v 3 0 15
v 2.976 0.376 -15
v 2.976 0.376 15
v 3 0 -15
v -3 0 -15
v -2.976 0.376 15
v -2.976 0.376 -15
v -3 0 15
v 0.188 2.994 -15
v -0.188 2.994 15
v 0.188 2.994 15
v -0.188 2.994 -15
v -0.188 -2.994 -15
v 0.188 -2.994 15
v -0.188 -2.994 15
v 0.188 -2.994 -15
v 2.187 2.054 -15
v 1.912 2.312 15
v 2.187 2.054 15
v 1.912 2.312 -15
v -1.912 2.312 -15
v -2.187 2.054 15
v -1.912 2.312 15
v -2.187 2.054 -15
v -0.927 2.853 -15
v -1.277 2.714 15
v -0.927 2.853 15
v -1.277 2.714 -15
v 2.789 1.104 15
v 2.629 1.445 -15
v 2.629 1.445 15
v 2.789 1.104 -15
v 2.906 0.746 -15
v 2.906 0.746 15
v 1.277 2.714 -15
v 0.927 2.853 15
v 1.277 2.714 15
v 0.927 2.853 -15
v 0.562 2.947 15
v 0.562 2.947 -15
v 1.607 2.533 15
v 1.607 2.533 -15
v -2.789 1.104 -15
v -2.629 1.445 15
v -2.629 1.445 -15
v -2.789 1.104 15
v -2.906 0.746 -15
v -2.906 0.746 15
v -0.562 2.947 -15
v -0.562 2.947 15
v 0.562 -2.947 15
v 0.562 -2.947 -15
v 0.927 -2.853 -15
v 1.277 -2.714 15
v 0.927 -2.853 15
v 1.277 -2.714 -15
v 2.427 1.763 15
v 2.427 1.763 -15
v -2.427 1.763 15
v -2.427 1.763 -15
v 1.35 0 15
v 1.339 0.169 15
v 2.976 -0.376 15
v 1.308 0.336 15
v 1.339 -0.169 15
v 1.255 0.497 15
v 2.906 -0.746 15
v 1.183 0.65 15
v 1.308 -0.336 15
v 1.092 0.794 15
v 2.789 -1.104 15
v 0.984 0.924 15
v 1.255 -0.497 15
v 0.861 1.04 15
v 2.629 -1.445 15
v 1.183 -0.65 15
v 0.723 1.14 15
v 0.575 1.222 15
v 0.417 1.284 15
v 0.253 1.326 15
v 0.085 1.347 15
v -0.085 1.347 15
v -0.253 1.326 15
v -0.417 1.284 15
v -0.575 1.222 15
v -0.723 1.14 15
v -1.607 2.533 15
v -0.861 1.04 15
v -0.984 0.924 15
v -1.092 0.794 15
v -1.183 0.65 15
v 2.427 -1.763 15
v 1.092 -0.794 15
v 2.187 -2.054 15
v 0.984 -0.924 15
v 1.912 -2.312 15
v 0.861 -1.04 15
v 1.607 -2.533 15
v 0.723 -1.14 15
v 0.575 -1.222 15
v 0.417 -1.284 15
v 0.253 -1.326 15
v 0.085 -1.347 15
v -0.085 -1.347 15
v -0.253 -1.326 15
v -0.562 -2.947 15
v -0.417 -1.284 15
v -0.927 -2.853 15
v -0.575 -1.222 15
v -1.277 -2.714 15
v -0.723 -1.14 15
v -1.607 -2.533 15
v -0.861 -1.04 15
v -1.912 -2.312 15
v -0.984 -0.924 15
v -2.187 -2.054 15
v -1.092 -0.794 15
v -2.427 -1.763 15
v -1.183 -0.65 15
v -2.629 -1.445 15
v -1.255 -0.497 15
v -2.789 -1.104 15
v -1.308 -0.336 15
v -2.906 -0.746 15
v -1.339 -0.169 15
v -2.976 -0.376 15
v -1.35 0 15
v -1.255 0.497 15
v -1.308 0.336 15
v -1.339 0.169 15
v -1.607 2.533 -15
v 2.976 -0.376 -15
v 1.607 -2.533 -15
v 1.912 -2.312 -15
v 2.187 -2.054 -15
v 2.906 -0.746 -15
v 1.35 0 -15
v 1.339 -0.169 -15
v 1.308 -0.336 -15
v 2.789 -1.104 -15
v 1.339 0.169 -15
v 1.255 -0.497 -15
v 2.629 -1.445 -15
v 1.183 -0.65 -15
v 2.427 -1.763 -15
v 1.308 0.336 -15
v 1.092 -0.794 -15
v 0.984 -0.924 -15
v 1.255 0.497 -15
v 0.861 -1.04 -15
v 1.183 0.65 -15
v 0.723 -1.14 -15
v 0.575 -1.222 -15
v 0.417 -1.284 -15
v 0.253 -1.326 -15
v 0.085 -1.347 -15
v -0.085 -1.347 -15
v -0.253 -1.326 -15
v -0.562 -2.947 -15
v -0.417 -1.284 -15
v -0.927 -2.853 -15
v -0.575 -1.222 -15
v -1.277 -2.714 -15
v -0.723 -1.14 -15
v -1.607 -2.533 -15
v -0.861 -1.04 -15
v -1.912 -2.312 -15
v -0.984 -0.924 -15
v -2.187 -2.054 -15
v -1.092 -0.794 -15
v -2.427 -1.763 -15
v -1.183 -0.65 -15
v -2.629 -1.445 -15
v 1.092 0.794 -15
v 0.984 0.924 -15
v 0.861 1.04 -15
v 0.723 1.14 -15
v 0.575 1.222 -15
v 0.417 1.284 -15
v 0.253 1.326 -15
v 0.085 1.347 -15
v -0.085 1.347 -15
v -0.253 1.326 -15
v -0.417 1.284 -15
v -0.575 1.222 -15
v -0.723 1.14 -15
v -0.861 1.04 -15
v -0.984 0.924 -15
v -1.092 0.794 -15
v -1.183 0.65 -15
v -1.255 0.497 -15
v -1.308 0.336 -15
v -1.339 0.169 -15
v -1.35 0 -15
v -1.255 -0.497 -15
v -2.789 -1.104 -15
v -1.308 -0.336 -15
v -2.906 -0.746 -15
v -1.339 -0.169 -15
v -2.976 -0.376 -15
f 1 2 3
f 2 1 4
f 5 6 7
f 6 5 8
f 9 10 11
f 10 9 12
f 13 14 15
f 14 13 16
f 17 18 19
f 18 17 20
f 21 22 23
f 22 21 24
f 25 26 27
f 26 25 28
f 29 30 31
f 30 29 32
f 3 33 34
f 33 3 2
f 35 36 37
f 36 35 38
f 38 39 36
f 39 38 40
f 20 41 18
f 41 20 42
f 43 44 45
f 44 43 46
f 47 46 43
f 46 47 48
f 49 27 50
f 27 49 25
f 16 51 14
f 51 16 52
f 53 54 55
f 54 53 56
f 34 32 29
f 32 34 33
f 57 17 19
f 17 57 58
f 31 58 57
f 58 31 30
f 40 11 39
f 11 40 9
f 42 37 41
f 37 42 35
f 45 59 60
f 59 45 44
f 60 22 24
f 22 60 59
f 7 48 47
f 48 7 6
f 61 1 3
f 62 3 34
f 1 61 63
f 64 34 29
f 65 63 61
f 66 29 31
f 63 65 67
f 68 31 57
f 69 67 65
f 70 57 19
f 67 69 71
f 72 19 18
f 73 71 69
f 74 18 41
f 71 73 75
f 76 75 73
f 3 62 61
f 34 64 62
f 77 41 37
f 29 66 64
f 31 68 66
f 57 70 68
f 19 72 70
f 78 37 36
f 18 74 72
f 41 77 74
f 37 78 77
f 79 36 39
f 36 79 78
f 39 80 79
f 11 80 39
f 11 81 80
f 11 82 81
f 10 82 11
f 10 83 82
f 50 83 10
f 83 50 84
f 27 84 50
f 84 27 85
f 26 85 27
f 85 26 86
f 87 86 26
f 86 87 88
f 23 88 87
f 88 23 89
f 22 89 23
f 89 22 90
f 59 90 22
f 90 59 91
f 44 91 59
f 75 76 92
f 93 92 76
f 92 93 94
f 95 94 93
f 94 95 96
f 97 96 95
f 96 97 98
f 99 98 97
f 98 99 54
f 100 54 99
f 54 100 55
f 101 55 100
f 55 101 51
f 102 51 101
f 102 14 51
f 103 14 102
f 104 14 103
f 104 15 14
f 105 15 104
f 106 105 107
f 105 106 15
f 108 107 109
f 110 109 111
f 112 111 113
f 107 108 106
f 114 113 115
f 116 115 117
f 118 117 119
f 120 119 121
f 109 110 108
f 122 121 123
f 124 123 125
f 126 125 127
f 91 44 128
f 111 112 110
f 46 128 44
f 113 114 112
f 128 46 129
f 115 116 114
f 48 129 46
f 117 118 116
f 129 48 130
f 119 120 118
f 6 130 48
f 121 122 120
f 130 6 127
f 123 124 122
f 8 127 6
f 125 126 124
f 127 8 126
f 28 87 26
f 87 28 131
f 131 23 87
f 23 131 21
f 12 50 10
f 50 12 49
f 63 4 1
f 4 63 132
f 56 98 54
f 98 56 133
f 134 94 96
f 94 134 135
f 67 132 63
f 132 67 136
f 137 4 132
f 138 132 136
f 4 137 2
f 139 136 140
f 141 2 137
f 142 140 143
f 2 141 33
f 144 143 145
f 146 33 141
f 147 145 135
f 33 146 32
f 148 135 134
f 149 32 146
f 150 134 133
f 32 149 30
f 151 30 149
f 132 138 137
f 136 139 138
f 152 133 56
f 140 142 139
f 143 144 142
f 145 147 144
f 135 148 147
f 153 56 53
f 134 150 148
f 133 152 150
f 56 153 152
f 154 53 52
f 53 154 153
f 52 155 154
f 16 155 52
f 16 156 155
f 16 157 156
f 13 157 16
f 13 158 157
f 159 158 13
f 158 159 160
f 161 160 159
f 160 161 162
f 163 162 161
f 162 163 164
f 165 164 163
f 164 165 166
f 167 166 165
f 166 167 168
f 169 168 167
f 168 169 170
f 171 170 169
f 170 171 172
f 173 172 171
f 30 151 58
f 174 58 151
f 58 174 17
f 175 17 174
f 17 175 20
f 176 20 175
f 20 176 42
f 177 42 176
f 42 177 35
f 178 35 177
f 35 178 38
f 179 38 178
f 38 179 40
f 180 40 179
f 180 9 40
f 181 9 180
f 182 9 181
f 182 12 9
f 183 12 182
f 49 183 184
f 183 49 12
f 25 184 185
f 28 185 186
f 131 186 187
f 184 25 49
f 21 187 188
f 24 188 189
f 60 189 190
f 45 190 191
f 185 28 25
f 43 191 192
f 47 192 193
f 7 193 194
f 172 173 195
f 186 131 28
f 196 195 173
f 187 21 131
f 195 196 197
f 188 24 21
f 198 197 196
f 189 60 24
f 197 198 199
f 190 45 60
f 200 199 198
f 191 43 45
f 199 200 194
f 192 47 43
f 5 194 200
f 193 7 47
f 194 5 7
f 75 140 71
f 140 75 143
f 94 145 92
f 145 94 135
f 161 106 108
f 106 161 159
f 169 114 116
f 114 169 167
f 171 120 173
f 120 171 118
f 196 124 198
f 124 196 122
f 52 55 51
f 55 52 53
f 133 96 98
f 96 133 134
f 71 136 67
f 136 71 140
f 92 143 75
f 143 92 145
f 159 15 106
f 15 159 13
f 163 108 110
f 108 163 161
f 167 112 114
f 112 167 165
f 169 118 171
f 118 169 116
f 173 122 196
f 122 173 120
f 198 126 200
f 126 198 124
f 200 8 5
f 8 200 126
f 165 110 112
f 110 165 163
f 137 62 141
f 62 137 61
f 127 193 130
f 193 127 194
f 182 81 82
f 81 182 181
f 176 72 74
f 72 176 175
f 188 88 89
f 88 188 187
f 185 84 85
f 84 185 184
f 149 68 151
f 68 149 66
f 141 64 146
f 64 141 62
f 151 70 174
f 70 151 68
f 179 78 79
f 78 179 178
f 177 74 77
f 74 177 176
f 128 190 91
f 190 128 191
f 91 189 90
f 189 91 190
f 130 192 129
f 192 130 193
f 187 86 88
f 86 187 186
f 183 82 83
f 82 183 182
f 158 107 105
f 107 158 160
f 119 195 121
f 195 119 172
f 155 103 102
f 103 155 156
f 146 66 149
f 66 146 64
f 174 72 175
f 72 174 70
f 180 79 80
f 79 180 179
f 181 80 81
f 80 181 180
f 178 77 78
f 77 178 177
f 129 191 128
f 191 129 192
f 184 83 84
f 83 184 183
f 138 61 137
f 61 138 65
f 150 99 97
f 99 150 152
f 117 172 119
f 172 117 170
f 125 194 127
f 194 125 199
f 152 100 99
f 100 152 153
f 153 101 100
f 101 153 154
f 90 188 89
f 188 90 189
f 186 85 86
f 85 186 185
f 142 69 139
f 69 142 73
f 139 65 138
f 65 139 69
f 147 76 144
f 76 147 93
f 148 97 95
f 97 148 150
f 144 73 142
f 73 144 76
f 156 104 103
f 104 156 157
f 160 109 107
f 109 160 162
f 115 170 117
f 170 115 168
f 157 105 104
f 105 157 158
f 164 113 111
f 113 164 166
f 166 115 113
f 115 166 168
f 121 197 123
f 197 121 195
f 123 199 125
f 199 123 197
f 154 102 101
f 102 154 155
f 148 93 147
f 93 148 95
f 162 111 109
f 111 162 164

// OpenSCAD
$fn = 50;


difference() {
	union() {
		translate(v = [0, 0, -15.0000000000]) {
			cylinder(h = 30, r = 3.0000000000);
		}
	}
	union() {
		translate(v = [0, 0, -100.0000000000]) {
			cylinder(h = 200, r = 1.3500000000);
		}
	}
}
